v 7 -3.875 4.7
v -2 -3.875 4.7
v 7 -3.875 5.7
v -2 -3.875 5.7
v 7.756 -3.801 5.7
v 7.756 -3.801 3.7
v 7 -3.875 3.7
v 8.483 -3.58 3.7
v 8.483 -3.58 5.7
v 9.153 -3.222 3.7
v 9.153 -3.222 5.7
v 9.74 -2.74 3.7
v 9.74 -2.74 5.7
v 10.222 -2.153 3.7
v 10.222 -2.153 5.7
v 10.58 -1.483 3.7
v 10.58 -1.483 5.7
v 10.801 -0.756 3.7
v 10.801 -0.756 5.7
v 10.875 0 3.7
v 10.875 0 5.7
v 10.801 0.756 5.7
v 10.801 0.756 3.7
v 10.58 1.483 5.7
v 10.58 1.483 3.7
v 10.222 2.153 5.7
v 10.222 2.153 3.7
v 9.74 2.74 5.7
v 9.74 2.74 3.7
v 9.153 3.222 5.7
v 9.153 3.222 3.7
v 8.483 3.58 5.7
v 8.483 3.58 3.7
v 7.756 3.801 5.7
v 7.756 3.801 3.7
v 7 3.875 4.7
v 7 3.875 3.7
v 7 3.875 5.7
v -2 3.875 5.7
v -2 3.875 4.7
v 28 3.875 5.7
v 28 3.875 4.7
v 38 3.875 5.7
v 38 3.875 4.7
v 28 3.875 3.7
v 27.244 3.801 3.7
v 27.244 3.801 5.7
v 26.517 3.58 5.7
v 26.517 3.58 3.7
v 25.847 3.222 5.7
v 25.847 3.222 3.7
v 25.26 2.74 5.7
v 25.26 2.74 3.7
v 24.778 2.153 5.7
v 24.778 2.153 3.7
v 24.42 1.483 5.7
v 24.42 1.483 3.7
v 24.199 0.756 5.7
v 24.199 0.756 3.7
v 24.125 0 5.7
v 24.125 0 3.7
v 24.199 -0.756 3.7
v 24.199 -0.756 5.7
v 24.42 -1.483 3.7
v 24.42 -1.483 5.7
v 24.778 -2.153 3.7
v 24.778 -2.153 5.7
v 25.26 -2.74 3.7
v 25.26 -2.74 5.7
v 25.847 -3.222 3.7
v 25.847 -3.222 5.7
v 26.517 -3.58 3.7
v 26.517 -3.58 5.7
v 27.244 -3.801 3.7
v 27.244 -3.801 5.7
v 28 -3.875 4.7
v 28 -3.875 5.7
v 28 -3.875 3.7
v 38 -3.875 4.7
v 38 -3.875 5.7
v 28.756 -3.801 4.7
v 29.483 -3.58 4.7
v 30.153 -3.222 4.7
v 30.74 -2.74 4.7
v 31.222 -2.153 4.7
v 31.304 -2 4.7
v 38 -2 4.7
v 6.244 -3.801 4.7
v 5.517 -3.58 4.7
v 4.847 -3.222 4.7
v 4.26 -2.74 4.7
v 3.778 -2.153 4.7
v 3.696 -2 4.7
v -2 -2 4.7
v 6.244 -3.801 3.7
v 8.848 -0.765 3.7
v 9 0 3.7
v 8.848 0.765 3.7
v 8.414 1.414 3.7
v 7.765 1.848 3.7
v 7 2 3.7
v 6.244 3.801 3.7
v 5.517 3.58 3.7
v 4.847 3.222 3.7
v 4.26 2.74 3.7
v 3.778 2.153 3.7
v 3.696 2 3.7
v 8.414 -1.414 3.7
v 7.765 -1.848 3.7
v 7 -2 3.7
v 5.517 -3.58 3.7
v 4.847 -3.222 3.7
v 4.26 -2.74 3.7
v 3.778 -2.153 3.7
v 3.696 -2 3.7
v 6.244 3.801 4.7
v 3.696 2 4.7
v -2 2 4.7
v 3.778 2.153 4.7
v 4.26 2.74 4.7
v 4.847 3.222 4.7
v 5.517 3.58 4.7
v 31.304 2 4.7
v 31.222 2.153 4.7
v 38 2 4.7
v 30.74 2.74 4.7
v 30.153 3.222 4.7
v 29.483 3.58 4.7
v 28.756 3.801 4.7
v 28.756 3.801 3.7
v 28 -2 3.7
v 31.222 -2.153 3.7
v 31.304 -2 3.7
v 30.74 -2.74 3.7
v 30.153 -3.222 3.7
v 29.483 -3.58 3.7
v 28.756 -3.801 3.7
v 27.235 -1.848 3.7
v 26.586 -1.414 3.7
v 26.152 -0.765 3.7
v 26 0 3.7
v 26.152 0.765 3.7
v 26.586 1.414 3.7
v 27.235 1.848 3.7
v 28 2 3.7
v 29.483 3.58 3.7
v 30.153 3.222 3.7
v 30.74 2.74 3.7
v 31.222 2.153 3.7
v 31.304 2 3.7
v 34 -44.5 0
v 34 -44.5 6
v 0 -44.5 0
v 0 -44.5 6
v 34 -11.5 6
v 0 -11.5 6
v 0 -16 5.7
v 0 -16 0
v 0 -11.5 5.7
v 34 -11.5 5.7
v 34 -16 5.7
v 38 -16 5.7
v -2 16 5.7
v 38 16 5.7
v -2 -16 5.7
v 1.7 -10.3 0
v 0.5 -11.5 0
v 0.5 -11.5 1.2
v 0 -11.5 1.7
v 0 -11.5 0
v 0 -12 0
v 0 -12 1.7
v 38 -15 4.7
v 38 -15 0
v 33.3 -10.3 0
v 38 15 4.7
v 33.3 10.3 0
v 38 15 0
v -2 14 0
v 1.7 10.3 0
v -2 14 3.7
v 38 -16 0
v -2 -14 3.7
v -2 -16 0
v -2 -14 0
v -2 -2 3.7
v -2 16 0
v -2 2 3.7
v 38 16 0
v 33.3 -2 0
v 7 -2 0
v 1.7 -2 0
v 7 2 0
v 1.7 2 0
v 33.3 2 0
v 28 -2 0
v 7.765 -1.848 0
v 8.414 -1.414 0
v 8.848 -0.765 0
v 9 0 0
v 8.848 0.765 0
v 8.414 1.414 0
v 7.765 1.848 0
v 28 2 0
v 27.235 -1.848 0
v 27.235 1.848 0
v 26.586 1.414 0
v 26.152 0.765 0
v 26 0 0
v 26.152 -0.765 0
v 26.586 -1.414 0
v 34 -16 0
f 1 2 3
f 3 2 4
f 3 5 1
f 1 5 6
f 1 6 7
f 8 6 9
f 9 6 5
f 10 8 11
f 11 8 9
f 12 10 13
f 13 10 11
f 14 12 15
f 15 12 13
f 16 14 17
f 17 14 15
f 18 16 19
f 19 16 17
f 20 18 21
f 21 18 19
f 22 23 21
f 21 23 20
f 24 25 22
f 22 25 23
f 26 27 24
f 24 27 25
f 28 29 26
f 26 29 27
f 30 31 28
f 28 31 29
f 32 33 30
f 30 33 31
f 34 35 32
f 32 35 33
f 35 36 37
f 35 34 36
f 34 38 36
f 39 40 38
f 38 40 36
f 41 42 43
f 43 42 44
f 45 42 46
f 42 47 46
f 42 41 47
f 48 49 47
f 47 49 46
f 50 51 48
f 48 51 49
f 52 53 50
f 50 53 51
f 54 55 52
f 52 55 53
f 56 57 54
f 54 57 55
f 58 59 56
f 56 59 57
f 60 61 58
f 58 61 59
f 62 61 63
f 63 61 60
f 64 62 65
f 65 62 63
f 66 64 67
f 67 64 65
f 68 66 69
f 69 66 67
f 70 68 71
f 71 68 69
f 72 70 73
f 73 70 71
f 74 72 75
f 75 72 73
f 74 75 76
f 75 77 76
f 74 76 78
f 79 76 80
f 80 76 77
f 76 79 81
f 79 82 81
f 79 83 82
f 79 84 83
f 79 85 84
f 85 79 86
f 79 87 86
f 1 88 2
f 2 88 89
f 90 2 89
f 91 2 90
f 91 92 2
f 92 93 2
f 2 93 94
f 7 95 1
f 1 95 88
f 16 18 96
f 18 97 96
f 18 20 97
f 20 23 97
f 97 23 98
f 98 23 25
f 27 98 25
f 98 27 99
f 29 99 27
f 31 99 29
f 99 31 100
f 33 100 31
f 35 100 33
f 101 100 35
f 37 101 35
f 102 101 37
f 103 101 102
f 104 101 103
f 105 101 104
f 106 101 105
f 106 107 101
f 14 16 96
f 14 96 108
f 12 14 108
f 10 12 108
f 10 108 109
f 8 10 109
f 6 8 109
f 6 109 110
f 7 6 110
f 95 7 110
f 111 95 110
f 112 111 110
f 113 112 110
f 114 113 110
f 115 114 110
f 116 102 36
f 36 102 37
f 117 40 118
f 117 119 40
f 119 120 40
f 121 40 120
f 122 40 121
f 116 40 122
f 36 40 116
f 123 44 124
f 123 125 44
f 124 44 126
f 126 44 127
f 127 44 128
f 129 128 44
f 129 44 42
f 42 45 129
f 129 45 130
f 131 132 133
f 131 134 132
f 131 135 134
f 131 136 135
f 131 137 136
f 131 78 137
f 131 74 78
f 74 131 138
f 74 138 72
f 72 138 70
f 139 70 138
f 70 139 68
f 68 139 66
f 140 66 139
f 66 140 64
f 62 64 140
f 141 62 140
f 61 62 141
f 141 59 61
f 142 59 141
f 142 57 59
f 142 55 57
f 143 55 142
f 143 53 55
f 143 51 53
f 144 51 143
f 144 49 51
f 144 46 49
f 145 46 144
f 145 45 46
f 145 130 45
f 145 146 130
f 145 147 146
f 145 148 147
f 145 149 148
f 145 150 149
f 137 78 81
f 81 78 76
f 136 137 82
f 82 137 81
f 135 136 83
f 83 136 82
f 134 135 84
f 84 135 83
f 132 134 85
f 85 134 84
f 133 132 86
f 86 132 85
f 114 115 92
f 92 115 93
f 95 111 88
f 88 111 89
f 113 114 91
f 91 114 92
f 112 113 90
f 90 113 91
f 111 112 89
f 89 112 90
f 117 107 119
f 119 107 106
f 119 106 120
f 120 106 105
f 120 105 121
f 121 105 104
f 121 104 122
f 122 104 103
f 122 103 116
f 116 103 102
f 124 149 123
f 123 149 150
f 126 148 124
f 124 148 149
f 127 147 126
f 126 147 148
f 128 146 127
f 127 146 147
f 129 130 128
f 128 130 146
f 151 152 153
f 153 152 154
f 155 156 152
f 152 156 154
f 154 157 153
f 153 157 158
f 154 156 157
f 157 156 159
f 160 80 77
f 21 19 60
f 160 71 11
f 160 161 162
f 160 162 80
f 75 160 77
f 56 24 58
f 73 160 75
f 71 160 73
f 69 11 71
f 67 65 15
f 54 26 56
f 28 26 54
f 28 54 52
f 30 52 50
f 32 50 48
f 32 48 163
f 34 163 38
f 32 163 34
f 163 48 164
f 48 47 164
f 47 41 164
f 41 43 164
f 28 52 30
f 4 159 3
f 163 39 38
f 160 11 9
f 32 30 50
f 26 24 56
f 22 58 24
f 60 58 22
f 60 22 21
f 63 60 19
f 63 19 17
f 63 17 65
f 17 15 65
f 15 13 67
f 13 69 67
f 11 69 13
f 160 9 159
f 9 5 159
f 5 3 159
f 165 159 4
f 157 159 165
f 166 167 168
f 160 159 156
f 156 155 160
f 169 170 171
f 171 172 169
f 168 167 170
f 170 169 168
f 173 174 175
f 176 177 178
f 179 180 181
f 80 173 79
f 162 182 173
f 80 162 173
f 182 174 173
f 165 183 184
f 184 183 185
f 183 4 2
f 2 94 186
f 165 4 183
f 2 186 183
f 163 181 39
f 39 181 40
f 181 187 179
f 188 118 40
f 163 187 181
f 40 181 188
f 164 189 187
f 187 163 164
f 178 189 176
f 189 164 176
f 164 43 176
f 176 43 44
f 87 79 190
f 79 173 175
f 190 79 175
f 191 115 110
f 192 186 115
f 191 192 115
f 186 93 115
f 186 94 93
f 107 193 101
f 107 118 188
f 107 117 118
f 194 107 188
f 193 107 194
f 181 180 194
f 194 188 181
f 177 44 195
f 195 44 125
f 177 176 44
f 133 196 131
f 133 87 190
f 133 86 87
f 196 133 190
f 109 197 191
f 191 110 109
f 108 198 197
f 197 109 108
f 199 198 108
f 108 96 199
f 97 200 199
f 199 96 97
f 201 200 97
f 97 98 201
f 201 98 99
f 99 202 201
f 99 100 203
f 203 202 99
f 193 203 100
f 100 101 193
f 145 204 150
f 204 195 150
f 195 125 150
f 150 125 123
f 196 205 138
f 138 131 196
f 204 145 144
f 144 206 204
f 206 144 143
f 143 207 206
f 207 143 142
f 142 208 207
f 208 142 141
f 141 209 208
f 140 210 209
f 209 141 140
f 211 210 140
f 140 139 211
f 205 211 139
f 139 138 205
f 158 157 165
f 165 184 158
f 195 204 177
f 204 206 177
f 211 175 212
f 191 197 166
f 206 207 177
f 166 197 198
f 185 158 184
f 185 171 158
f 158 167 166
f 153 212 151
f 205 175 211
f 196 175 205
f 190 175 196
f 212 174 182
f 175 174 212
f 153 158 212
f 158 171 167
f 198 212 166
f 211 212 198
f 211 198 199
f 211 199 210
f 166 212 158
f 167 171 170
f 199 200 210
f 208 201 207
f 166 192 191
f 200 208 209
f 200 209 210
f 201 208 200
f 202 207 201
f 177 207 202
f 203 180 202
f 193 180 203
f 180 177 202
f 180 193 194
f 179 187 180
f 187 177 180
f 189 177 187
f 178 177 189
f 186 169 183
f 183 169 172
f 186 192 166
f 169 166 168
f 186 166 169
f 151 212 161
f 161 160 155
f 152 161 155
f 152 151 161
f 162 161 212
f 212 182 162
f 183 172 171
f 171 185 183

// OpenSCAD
// Generated by SolidPython 1.1.3 on 2024-01-27 21:57:27


difference() {
	translate(v = [0, 0, 5]) {
		rotate(a = 90, v = [0, 1, 0]) {
			union() {
				translate(v = [2, -28, 17]) {
					rotate(a = 90, v = [0, 1, 0]) {
						cube(center = true, size = [34, 33, 6]);
					}
				}
				translate(v = [0, 0, -12]) {
					translate(v = [15.3000000000, 0, 30]) {
						rotate(a = 90, v = [0, 1, 0]) {
							difference() {
								union() {
									union();
									translate(v = [-20, 0, 0]) {
										rotate(a = [0, 90.0, 0.0]) {
											translate(v = [0, 0, 20.0]) {
												cube(center = true, size = [32.0000000000, 32.0000000000, 40.0]);
											}
										}
									}
									union();
								}
								union() {
									union();
									translate(v = [-20, 0, 0]) {
										rotate(a = [0, 90.0, 0.0]) {
											translate(v = [0, 0, 10]) {
												rotate(a = -90, v = [0, -1, 0]) {
													rotate(a = 90, v = [0, 0, 1]) {
														union() {
															union();
															translate(v = [0, -10, 0]) {
																rotate(a = -90, v = [1, 0, 0]) {
																	polyhedron(convexity = 10, faces = [[0, 1, 4], [1, 5, 4], [1, 2, 5], [2, 6, 5], [2, 3, 6], [3, 7, 6], [3, 0, 7], [0, 4, 7], [3, 2, 1, 0], [4, 5, 6, 7]], points = [[-15.0000000000, 15.0000000000, 0.0000000000], [15.0000000000, 15.0000000000, 0.0000000000], [15.0000000000, -15.0000000000, 0.0000000000], [-15.0000000000, -15.0000000000, 0.0000000000], [0.0000000000, 0.0000000000, 15.0000000000], [0.0000000000, 0.0000000000, 15.0000000000], [0.0000000000, 0.0000000000, 15.0000000000], [0.0000000000, 0.0000000000, 15.0000000000]]);
																}
															}
															translate(v = [0, 21.0, 0]) {
																rotate(a = 180, v = [1, 0, 0]) {
																	translate(v = [0, -10, 0]) {
																		rotate(a = -90, v = [1, 0, 0]) {
																			polyhedron(convexity = 10, faces = [[0, 1, 4], [1, 5, 4], [1, 2, 5], [2, 6, 5], [2, 3, 6], [3, 7, 6], [3, 0, 7], [0, 4, 7], [3, 2, 1, 0], [4, 5, 6, 7]], points = [[-15.0000000000, 15.0000000000, 0.0000000000], [15.0000000000, 15.0000000000, 0.0000000000], [15.0000000000, -15.0000000000, 0.0000000000], [-15.0000000000, -15.0000000000, 0.0000000000], [0.0000000000, 0.0000000000, 15.0000000000], [0.0000000000, 0.0000000000, 15.0000000000], [0.0000000000, 0.0000000000, 15.0000000000], [0.0000000000, 0.0000000000, 15.0000000000]]);
																		}
																	}
																}
															}
															translate(v = [0, -10, 0]) {
																rotate(a = -90, v = [1, 0, 0]) {
																	union() {
																		polyhedron(convexity = 10, faces = [[0, 1, 5], [1, 6, 5], [1, 2, 6], [2, 7, 6], [2, 3, 7], [3, 8, 7], [3, 4, 8], [4, 9, 8], [4, 0, 9], [0, 5, 9], [4, 3, 2, 1, 0], [5, 6, 7, 8, 9]], points = [[-10.2, 10.2, 0.0], [-10.2, 0.0, 0.0], [-4.3999999999999995, 0.0, 0.0], [-4.3999999999999995, 0.0, 0.0], [0.0, 0.0, 0.0], [-10.2, 10.2, 40.0], [-10.2, 0.0, 40.0], [-4.3999999999999995, 0.0, 40.0], [-4.3999999999999995, 0.0, 40.0], [0.0, 0.0, 40.0]]);
																		mirror(v = [0, 1]) {
																			polyhedron(convexity = 10, faces = [[0, 1, 5], [1, 6, 5], [1, 2, 6], [2, 7, 6], [2, 3, 7], [3, 8, 7], [3, 4, 8], [4, 9, 8], [4, 0, 9], [0, 5, 9], [4, 3, 2, 1, 0], [5, 6, 7, 8, 9]], points = [[-10.2, 10.2, 0.0], [-10.2, 0.0, 0.0], [-4.3999999999999995, 0.0, 0.0], [-4.3999999999999995, 0.0, 0.0], [0.0, 0.0, 0.0], [-10.2, 10.2, 40.0], [-10.2, 0.0, 40.0], [-4.3999999999999995, 0.0, 40.0], [-4.3999999999999995, 0.0, 40.0], [0.0, 0.0, 40.0]]);
																		}
																		mirror(v = [1, 1]) {
																			union() {
																				polyhedron(convexity = 10, faces = [[0, 1, 5], [1, 6, 5], [1, 2, 6], [2, 7, 6], [2, 3, 7], [3, 8, 7], [3, 4, 8], [4, 9, 8], [4, 0, 9], [0, 5, 9], [4, 3, 2, 1, 0], [5, 6, 7, 8, 9]], points = [[-10.2, 10.2, 0.0], [-10.2, 0.0, 0.0], [-4.3999999999999995, 0.0, 0.0], [-4.3999999999999995, 0.0, 0.0], [0.0, 0.0, 0.0], [-10.2, 10.2, 40.0], [-10.2, 0.0, 40.0], [-4.3999999999999995, 0.0, 40.0], [-4.3999999999999995, 0.0, 40.0], [0.0, 0.0, 40.0]]);
																				mirror(v = [0, 1]) {
																					polyhedron(convexity = 10, faces = [[0, 1, 5], [1, 6, 5], [1, 2, 6], [2, 7, 6], [2, 3, 7], [3, 8, 7], [3, 4, 8], [4, 9, 8], [4, 0, 9], [0, 5, 9], [4, 3, 2, 1, 0], [5, 6, 7, 8, 9]], points = [[-10.2, 10.2, 0.0], [-10.2, 0.0, 0.0], [-4.3999999999999995, 0.0, 0.0], [-4.3999999999999995, 0.0, 0.0], [0.0, 0.0, 0.0], [-10.2, 10.2, 40.0], [-10.2, 0.0, 40.0], [-4.3999999999999995, 0.0, 40.0], [-4.3999999999999995, 0.0, 40.0], [0.0, 0.0, 40.0]]);
																				}
																			}
																		}
																		mirror(v = [1, -1]) {
																			union() {
																				polyhedron(convexity = 10, faces = [[0, 1, 5], [1, 6, 5], [1, 2, 6], [2, 7, 6], [2, 3, 7], [3, 8, 7], [3, 4, 8], [4, 9, 8], [4, 0, 9], [0, 5, 9], [4, 3, 2, 1, 0], [5, 6, 7, 8, 9]], points = [[-10.2, 10.2, 0.0], [-10.2, 0.0, 0.0], [-4.3999999999999995, 0.0, 0.0], [-4.3999999999999995, 0.0, 0.0], [0.0, 0.0, 0.0], [-10.2, 10.2, 40.0], [-10.2, 0.0, 40.0], [-4.3999999999999995, 0.0, 40.0], [-4.3999999999999995, 0.0, 40.0], [0.0, 0.0, 40.0]]);
																				mirror(v = [0, 1]) {
																					polyhedron(convexity = 10, faces = [[0, 1, 5], [1, 6, 5], [1, 2, 6], [2, 7, 6], [2, 3, 7], [3, 8, 7], [3, 4, 8], [4, 9, 8], [4, 0, 9], [0, 5, 9], [4, 3, 2, 1, 0], [5, 6, 7, 8, 9]], points = [[-10.2, 10.2, 0.0], [-10.2, 0.0, 0.0], [-4.3999999999999995, 0.0, 0.0], [-4.3999999999999995, 0.0, 0.0], [0.0, 0.0, 0.0], [-10.2, 10.2, 40.0], [-10.2, 0.0, 40.0], [-4.3999999999999995, 0.0, 40.0], [-4.3999999999999995, 0.0, 40.0], [0.0, 0.0, 40.0]]);
																				}
																				mirror(v = [1, 1]) {
																					union() {
																						polyhedron(convexity = 10, faces = [[0, 1, 5], [1, 6, 5], [1, 2, 6], [2, 7, 6], [2, 3, 7], [3, 8, 7], [3, 4, 8], [4, 9, 8], [4, 0, 9], [0, 5, 9], [4, 3, 2, 1, 0], [5, 6, 7, 8, 9]], points = [[-10.2, 10.2, 0.0], [-10.2, 0.0, 0.0], [-4.3999999999999995, 0.0, 0.0], [-4.3999999999999995, 0.0, 0.0], [0.0, 0.0, 0.0], [-10.2, 10.2, 40.0], [-10.2, 0.0, 40.0], [-4.3999999999999995, 0.0, 40.0], [-4.3999999999999995, 0.0, 40.0], [0.0, 0.0, 40.0]]);
																						mirror(v = [0, 1]) {
																							polyhedron(convexity = 10, faces = [[0, 1, 5], [1, 6, 5], [1, 2, 6], [2, 7, 6], [2, 3, 7], [3, 8, 7], [3, 4, 8], [4, 9, 8], [4, 0, 9], [0, 5, 9], [4, 3, 2, 1, 0], [5, 6, 7, 8, 9]], points = [[-10.2, 10.2, 0.0], [-10.2, 0.0, 0.0], [-4.3999999999999995, 0.0, 0.0], [-4.3999999999999995, 0.0, 0.0], [0.0, 0.0, 0.0], [-10.2, 10.2, 40.0], [-10.2, 0.0, 40.0], [-4.3999999999999995, 0.0, 40.0], [-4.3999999999999995, 0.0, 40.0], [0.0, 0.0, 40.0]]);
																						}
																					}
																				}
																			}
																		}
																	}
																}
															}
															union() {
																union();
																rotate(a = 180, v = [0, 1, 0]) {
																	union() {
																		translate(v = [0, 0, 14]) {
																			cylinder($fn = 32, h = 4, r = 3.8750000000);
																		}
																		translate(v = [-3.8750000000, -12, 15]) {
																			cube(size = [7.7500000000, 12, 4]);
																		}
																		union() {
																			cylinder($fn = 16, h = 19, r = 2.0000000000);
																			translate(v = [-2.0000000000, -12, 0]) {
																				cube(size = [4, 12, 19]);
																			}
																		}
																		rotate(a = -90, v = [0, 1, 0]) {
																			polyhedron(convexity = 10, faces = [[0, 1, 3], [1, 4, 3], [1, 2, 4], [2, 5, 4], [2, 0, 5], [0, 3, 5], [2, 1, 0], [3, 4, 5]], points = [[0.0000000000, -10.0000000000, 0.0000000000], [10.1000000000, -10.0000000000, 10.1000000000], [10.1000000000, -10.0000000000, -10.1000000000], [0.0000000000, 12.0000000000, 0.0000000000], [10.1000000000, 12.0000000000, 10.1000000000], [10.1000000000, 12.0000000000, -10.1000000000]]);
																		}
																	}
																}
																rotate(a = 90, v = [0, 1, 0]) {
																	union() {
																		translate(v = [0, 0, 14]) {
																			cylinder($fn = 32, h = 4, r = 3.8750000000);
																		}
																		translate(v = [-3.8750000000, -12, 15]) {
																			cube(size = [7.7500000000, 12, 4]);
																		}
																		union() {
																			cylinder($fn = 16, h = 19, r = 2.0000000000);
																			translate(v = [-2.0000000000, -12, 0]) {
																				cube(size = [4, 12, 19]);
																			}
																		}
																		rotate(a = -90, v = [0, 1, 0]) {
																			polyhedron(convexity = 10, faces = [[0, 1, 3], [1, 4, 3], [1, 2, 4], [2, 5, 4], [2, 0, 5], [0, 3, 5], [2, 1, 0], [3, 4, 5]], points = [[0.0000000000, -10.0000000000, 0.0000000000], [10.1000000000, -10.0000000000, 10.1000000000], [10.1000000000, -10.0000000000, -10.1000000000], [0.0000000000, 12.0000000000, 0.0000000000], [10.1000000000, 12.0000000000, 10.1000000000], [10.1000000000, 12.0000000000, -10.1000000000]]);
																		}
																	}
																}
																union() {
																	translate(v = [0, 0, 14]) {
																		cylinder($fn = 32, h = 4, r = 3.8750000000);
																	}
																	translate(v = [-3.8750000000, -12, 15]) {
																		cube(size = [7.7500000000, 12, 4]);
																	}
																	union() {
																		cylinder($fn = 16, h = 19, r = 2.0000000000);
																		translate(v = [-2.0000000000, -12, 0]) {
																			cube(size = [4, 12, 19]);
																		}
																	}
																	rotate(a = -90, v = [0, 1, 0]) {
																		polyhedron(convexity = 10, faces = [[0, 1, 3], [1, 4, 3], [1, 2, 4], [2, 5, 4], [2, 0, 5], [0, 3, 5], [2, 1, 0], [3, 4, 5]], points = [[0.0000000000, -10.0000000000, 0.0000000000], [10.1000000000, -10.0000000000, 10.1000000000], [10.1000000000, -10.0000000000, -10.1000000000], [0.0000000000, 12.0000000000, 0.0000000000], [10.1000000000, 12.0000000000, 10.1000000000], [10.1000000000, 12.0000000000, -10.1000000000]]);
																	}
																}
																rotate(a = 270, v = [0, 1, 0]) {
																	union() {
																		translate(v = [0, 0, 14]) {
																			cylinder($fn = 32, h = 4, r = 3.8750000000);
																		}
																		translate(v = [-3.8750000000, -12, 15]) {
																			cube(size = [7.7500000000, 12, 4]);
																		}
																		union() {
																			cylinder($fn = 16, h = 19, r = 2.0000000000);
																			translate(v = [-2.0000000000, -12, 0]) {
																				cube(size = [4, 12, 19]);
																			}
																		}
																		rotate(a = -90, v = [0, 1, 0]) {
																			polyhedron(convexity = 10, faces = [[0, 1, 3], [1, 4, 3], [1, 2, 4], [2, 5, 4], [2, 0, 5], [0, 3, 5], [2, 1, 0], [3, 4, 5]], points = [[0.0000000000, -10.0000000000, 0.0000000000], [10.1000000000, -10.0000000000, 10.1000000000], [10.1000000000, -10.0000000000, -10.1000000000], [0.0000000000, 12.0000000000, 0.0000000000], [10.1000000000, 12.0000000000, 10.1000000000], [10.1000000000, 12.0000000000, -10.1000000000]]);
																		}
																	}
																}
																translate(v = [0, 21.0, 0]) {
																	rotate(a = 180, v = [1, 0, 0]) {
																		rotate(a = 180, v = [0, 1, 0]) {
																			union() {
																				translate(v = [0, 0, 14]) {
																					cylinder($fn = 32, h = 4, r = 3.8750000000);
																				}
																				translate(v = [-3.8750000000, -12, 15]) {
																					cube(size = [7.7500000000, 12, 4]);
																				}
																				union() {
																					cylinder($fn = 16, h = 19, r = 2.0000000000);
																					translate(v = [-2.0000000000, -12, 0]) {
																						cube(size = [4, 12, 19]);
																					}
																				}
																				rotate(a = -90, v = [0, 1, 0]) {
																					polyhedron(convexity = 10, faces = [[0, 1, 3], [1, 4, 3], [1, 2, 4], [2, 5, 4], [2, 0, 5], [0, 3, 5], [2, 1, 0], [3, 4, 5]], points = [[0.0000000000, -10.0000000000, 0.0000000000], [10.1000000000, -10.0000000000, 10.1000000000], [10.1000000000, -10.0000000000, -10.1000000000], [0.0000000000, 12.0000000000, 0.0000000000], [10.1000000000, 12.0000000000, 10.1000000000], [10.1000000000, 12.0000000000, -10.1000000000]]);
																				}
																			}
																		}
																	}
																}
																translate(v = [0, 21.0, 0]) {
																	rotate(a = 180, v = [1, 0, 0]) {
																		rotate(a = 90, v = [0, 1, 0]) {
																			union() {
																				translate(v = [0, 0, 14]) {
																					cylinder($fn = 32, h = 4, r = 3.8750000000);
																				}
																				translate(v = [-3.8750000000, -12, 15]) {
																					cube(size = [7.7500000000, 12, 4]);
																				}
																				union() {
																					cylinder($fn = 16, h = 19, r = 2.0000000000);
																					translate(v = [-2.0000000000, -12, 0]) {
																						cube(size = [4, 12, 19]);
																					}
																				}
																				rotate(a = -90, v = [0, 1, 0]) {
																					polyhedron(convexity = 10, faces = [[0, 1, 3], [1, 4, 3], [1, 2, 4], [2, 5, 4], [2, 0, 5], [0, 3, 5], [2, 1, 0], [3, 4, 5]], points = [[0.0000000000, -10.0000000000, 0.0000000000], [10.1000000000, -10.0000000000, 10.1000000000], [10.1000000000, -10.0000000000, -10.1000000000], [0.0000000000, 12.0000000000, 0.0000000000], [10.1000000000, 12.0000000000, 10.1000000000], [10.1000000000, 12.0000000000, -10.1000000000]]);
																				}
																			}
																		}
																	}
																}
																translate(v = [0, 21.0, 0]) {
																	rotate(a = 180, v = [1, 0, 0]) {
																		union() {
																			translate(v = [0, 0, 14]) {
																				cylinder($fn = 32, h = 4, r = 3.8750000000);
																			}
																			translate(v = [-3.8750000000, -12, 15]) {
																				cube(size = [7.7500000000, 12, 4]);
																			}
																			union() {
																				cylinder($fn = 16, h = 19, r = 2.0000000000);
																				translate(v = [-2.0000000000, -12, 0]) {
																					cube(size = [4, 12, 19]);
																				}
																			}
																			rotate(a = -90, v = [0, 1, 0]) {
																				polyhedron(convexity = 10, faces = [[0, 1, 3], [1, 4, 3], [1, 2, 4], [2, 5, 4], [2, 0, 5], [0, 3, 5], [2, 1, 0], [3, 4, 5]], points = [[0.0000000000, -10.0000000000, 0.0000000000], [10.1000000000, -10.0000000000, 10.1000000000], [10.1000000000, -10.0000000000, -10.1000000000], [0.0000000000, 12.0000000000, 0.0000000000], [10.1000000000, 12.0000000000, 10.1000000000], [10.1000000000, 12.0000000000, -10.1000000000]]);
																			}
																		}
																	}
																}
																translate(v = [0, 21.0, 0]) {
																	rotate(a = 180, v = [1, 0, 0]) {
																		rotate(a = 270, v = [0, 1, 0]) {
																			union() {
																				translate(v = [0, 0, 14]) {
																					cylinder($fn = 32, h = 4, r = 3.8750000000);
																				}
																				translate(v = [-3.8750000000, -12, 15]) {
																					cube(size = [7.7500000000, 12, 4]);
																				}
																				union() {
																					cylinder($fn = 16, h = 19, r = 2.0000000000);
																					translate(v = [-2.0000000000, -12, 0]) {
																						cube(size = [4, 12, 19]);
																					}
																				}
																				rotate(a = -90, v = [0, 1, 0]) {
																					polyhedron(convexity = 10, faces = [[0, 1, 3], [1, 4, 3], [1, 2, 4], [2, 5, 4], [2, 0, 5], [0, 3, 5], [2, 1, 0], [3, 4, 5]], points = [[0.0000000000, -10.0000000000, 0.0000000000], [10.1000000000, -10.0000000000, 10.1000000000], [10.1000000000, -10.0000000000, -10.1000000000], [0.0000000000, 12.0000000000, 0.0000000000], [10.1000000000, 12.0000000000, 10.1000000000], [10.1000000000, 12.0000000000, -10.1000000000]]);
																				}
																			}
																		}
																	}
																}
															}
														}
													}
												}
											}
										}
									}
								}
							}
						}
					}
				}
			}
		}
	}
	translate(v = [0, 0, -150]) {
		cube(center = true, size = [300, 300, 300]);
	}
}
/***********************************************
*********      SolidPython code:      **********
************************************************
 
#! /usr/bin/env python3
import sys
from math import cos, radians, sin, pi, tau
from pathlib import Path

from solid import *
from solid.utils import *

from typing import Set, Sequence, List, Callable, Optional, Union, Iterable, Tuple

import numpy as np

import extrusion_fittings as ef

class EndStopPush():
	def __init__(self,endstop_width = 34,endstop_length = 33,screw_dia = 4, push_thick = 6):
		self.endstop_width = endstop_width
		self.endstop_length = endstop_length
		self.screw_dia = screw_dia
		self.push_thick = push_thick

	def endstop_push(self) -> OpenSCADObject:
		mm = cube([self.endstop_width,self.endstop_length,self.push_thick], center=True)
		mm = rotate(a = 90,v = (0,1,0))(mm)
		mm = translate([2,-28,17])(mm)
		return mm

	def bisect_floor(self,input) -> OpenSCADObject:
		size = 300
		floor = translate([0,0,-150])(cube([300,300,300],center = True))
		return input - floor


if __name__ == "__main__":
	out_dir = sys.argv[1] if len(sys.argv) > 1 else Path(__file__).parent

	e = ef.Fittings(20)
	m = EndStopPush()
	a = m.endstop_push()
	t = e.tube()
	t = rotate(a = 90,v = (0,1,0))(t)
	t = translate([15.3,0,30])(t)
	t = translate([0,0,-12])(t)
	a += t
	a = rotate(a = 90, v = (0,1,0))(a)
	a = translate([0,0,5])(a)
	a = m.bisect_floor(a)

	file_out = scad_render_to_file(a,  out_dir=out_dir, include_orig_code=True)
	print(f"{__file__}: SCAD file written to: \n{file_out}")
 
 
************************************************/
